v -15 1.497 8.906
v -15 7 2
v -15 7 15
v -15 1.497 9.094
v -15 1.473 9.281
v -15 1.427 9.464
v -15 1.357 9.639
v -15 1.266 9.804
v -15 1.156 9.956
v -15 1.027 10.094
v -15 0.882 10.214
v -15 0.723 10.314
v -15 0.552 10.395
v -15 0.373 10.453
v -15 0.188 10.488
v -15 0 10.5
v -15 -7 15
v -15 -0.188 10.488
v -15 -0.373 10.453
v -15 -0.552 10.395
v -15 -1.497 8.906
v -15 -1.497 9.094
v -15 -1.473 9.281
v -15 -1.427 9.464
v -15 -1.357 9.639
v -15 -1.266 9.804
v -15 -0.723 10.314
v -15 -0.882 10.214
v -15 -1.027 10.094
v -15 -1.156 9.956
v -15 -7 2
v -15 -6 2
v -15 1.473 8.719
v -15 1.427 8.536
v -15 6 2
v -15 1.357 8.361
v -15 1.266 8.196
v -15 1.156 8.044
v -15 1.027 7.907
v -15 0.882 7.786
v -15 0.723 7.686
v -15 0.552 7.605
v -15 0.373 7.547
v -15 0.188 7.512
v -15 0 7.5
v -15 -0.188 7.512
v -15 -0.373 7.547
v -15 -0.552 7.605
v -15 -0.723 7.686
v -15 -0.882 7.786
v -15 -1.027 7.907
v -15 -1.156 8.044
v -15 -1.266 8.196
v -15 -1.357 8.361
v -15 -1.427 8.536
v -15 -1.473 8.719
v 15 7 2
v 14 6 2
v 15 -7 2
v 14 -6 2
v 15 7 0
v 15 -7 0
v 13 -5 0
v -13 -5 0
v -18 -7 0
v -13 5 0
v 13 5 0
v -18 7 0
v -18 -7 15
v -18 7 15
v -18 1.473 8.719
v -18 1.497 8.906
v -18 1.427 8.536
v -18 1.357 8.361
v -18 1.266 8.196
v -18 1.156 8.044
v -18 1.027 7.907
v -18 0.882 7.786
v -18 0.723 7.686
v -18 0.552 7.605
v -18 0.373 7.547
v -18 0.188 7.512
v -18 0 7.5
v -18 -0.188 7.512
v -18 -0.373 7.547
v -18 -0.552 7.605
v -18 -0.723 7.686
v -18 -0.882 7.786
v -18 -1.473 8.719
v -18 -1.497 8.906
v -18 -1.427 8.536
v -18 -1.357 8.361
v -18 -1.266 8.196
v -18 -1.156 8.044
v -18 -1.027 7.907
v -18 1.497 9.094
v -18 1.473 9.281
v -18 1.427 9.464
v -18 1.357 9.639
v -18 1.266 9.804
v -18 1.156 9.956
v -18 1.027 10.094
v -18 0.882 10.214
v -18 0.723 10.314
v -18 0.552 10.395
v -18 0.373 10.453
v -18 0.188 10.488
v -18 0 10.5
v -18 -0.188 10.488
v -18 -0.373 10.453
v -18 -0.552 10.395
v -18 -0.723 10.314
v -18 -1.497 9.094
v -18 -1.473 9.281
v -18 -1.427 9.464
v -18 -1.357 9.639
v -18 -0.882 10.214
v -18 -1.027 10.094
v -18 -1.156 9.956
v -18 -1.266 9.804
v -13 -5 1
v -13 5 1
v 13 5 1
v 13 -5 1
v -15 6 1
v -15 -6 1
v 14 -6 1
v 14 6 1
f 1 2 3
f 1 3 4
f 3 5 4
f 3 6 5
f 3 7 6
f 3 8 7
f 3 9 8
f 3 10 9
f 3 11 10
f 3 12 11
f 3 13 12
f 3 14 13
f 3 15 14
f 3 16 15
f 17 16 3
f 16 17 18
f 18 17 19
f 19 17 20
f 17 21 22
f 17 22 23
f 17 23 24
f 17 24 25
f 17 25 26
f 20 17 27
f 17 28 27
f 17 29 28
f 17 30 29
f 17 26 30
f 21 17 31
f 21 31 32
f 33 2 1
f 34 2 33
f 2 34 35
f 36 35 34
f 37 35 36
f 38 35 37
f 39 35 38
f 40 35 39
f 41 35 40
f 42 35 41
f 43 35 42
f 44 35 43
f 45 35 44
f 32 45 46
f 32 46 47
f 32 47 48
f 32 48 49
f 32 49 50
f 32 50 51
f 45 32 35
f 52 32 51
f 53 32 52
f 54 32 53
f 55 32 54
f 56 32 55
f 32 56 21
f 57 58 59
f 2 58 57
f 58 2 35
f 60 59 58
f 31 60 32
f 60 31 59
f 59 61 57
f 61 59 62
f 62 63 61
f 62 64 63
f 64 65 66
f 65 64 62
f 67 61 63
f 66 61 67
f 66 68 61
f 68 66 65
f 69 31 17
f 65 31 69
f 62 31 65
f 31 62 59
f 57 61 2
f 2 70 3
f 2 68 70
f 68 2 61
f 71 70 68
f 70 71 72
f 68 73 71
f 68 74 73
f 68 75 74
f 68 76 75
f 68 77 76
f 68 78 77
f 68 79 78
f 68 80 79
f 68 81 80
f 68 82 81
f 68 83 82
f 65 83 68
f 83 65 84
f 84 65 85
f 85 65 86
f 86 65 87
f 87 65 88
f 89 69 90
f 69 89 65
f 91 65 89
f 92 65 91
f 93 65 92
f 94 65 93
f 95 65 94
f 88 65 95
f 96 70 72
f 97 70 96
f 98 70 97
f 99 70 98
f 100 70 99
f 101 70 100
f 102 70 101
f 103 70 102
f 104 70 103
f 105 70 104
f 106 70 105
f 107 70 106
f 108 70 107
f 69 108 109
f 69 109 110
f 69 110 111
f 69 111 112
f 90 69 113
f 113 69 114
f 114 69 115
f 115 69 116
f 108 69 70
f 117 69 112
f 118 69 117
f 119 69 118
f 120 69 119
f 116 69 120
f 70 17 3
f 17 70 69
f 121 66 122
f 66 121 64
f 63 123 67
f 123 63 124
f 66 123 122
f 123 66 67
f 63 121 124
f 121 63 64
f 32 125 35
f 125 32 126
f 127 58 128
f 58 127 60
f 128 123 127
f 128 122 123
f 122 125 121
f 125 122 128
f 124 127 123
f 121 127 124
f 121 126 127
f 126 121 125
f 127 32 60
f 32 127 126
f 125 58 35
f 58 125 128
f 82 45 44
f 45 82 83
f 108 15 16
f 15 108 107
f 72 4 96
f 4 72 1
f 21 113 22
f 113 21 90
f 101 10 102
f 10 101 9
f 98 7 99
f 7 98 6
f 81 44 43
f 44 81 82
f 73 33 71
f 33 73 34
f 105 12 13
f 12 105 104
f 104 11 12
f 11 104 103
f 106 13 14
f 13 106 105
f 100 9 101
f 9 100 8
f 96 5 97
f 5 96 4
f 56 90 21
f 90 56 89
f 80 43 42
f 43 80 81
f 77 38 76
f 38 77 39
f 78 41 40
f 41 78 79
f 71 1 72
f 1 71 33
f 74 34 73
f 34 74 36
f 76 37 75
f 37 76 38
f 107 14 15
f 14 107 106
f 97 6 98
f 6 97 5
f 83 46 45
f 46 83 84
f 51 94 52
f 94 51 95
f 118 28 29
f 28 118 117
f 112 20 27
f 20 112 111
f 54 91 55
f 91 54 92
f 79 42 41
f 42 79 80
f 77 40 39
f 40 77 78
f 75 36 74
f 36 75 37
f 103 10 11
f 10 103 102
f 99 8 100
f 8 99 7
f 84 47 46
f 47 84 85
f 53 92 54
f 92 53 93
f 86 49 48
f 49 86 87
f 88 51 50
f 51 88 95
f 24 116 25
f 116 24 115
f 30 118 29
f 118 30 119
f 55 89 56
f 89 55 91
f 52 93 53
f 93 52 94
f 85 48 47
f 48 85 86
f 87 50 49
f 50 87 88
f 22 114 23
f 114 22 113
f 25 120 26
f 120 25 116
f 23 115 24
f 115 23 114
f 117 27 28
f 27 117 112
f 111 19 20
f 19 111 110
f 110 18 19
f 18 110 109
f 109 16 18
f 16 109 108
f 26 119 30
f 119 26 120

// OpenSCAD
$fn = 50;


difference() {
	union() {
		translate(v = [-15.0000000000, -7.0000000000, 0]) {
			cube(size = [30, 14, 2]);
		}
		translate(v = [-18.0000000000, -7.0000000000, 0]) {
			cube(size = [3, 14, 15]);
		}
	}
	union() {
		translate(v = [-13.0000000000, -5.0000000000, 0]) {
			cube(size = [26, 10, 2]);
		}
		translate(v = [-15.0000000000, -6.0000000000, 1]) {
			cube(size = [29, 12, 1]);
		}
		#translate(v = [-25.0000000000, 0, 9]) {
			rotate(a = [0, 90, 0]) {
				cylinder(h = 20, r = 1.5000000000);
			}
		}
	}
}
